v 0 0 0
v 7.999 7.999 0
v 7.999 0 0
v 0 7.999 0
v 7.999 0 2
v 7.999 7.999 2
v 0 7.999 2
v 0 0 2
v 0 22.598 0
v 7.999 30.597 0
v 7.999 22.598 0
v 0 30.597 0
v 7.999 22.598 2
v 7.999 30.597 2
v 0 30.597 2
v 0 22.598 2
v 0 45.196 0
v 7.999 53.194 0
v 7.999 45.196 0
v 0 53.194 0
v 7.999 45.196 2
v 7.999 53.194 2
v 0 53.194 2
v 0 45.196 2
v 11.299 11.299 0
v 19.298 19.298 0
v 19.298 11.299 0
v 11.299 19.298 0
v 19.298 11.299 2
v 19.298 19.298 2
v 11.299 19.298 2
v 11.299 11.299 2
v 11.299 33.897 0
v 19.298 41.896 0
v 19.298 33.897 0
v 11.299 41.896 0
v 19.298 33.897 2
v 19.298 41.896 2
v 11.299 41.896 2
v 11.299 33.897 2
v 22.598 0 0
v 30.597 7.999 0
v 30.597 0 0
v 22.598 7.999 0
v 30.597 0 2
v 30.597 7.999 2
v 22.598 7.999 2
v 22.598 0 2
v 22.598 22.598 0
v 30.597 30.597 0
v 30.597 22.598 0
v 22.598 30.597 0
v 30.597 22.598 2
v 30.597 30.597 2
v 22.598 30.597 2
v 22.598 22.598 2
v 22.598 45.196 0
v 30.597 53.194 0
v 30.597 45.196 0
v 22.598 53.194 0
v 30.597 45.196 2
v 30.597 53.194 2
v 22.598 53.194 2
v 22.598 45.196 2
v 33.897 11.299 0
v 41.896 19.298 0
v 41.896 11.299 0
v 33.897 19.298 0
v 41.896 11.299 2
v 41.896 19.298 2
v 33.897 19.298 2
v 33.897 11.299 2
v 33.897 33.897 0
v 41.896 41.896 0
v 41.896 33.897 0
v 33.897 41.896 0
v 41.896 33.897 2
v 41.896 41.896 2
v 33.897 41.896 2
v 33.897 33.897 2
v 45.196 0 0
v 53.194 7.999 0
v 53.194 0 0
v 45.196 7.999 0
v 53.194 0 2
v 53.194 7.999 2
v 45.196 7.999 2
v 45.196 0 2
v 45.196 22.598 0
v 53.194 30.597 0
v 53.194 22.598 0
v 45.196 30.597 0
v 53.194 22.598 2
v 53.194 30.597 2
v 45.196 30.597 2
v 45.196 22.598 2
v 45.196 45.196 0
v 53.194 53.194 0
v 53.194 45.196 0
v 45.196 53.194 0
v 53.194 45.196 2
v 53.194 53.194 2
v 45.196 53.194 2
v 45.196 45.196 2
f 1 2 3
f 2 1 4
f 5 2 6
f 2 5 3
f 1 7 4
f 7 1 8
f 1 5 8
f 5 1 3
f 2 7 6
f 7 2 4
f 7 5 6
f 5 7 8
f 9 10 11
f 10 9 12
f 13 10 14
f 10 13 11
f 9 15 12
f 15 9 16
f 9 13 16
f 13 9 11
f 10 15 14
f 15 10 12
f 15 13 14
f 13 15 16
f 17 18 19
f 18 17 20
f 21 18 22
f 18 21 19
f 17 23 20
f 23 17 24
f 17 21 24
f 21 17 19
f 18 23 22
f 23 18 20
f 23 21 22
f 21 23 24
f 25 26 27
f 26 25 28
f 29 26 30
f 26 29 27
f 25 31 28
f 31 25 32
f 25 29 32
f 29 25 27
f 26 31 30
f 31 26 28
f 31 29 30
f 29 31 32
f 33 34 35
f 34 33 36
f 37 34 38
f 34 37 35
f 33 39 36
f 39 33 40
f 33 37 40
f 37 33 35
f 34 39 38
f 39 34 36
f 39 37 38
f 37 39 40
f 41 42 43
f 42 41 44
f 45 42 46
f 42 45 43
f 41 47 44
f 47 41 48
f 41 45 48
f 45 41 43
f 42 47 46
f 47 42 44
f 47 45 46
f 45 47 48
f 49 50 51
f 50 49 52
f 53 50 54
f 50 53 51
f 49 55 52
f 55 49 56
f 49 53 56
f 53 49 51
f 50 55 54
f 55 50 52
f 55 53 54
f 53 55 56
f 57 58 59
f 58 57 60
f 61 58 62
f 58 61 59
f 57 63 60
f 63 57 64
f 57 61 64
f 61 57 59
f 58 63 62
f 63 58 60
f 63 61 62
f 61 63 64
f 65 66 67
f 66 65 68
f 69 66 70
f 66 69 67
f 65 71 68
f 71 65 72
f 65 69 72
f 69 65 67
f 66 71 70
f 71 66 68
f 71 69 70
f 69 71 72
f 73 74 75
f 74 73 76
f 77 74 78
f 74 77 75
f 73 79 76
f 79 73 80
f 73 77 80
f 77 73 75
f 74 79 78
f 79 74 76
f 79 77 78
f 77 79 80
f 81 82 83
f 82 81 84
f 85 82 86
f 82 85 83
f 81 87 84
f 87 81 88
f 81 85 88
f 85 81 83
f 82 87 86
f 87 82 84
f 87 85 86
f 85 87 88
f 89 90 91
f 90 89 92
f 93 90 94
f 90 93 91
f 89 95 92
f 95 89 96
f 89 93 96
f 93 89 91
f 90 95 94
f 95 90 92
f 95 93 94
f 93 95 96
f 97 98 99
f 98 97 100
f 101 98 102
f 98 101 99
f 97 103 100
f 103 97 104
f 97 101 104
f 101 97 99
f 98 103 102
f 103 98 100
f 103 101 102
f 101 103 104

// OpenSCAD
// file: bellum_text_traced.scad
// bellum_text_traced.scad
// "Bellum" lettering traced from the source logo image with
// OpenCV (4x cubic upscale, threshold, morphological cleanup,
// approxPolyDP 2px). Coordinates are centered, Y-up, and
// normalized to 100 units of total width.
// Regenerate with scratchpad/trace2_emit.py if retuning.

module bellum_traced_2d() {
    polygon(points=[[-49.89,10.25],[-49.89,9.49],[-49.35,8.94],[-46.95,8.83],[-45.64,7.74],[-45.09,6.11],[-45.42,-2.07],[-45.09,-10.25],[-46.07,-11.56],[-49.24,-11.89],[-49.56,-12.32],[-49.45,-13.30],[-30.59,-13.41],[-28.08,-12.87],[-26.23,-11.45],[-25.03,-9.27],[-24.48,-6.65],[-25.03,-4.80],[-26.01,-3.27],[-29.28,-0.55],[-27.10,2.84],[-27.32,5.78],[-27.97,6.98],[-29.28,8.29],[-31.13,9.38],[-35.50,10.36],[-40.62,-1.42],[-39.97,-0.98],[-35.06,-0.98],[-33.10,-1.31],[-31.68,-1.96],[-30.04,-3.60],[-29.06,-5.89],[-29.06,-7.96],[-29.83,-9.49],[-31.35,-10.91],[-33.86,-11.67],[-37.35,-11.89],[-39.97,-11.34],[-40.95,-10.25],[-41.38,8.40],[-40.84,8.83],[-38.99,9.05],[-35.93,8.83],[-33.32,7.85],[-31.57,6.32],[-30.92,4.91],[-31.24,2.40],[-32.55,0.98],[-33.86,0.33],[-39.31,0.00],[-40.29,0.44],[-40.95,1.53],[-41.49,6.22]], paths=[[0, 1, 2, 3, 4, 5, 6, 7, 8, 9, 10, 11, 12, 13, 14, 15, 16, 17, 18, 19, 20, 21, 22, 23, 24, 25], [26, 27, 28, 29, 30, 31, 32, 33, 34, 35, 36, 37, 38, 39], [40, 41, 42, 43, 44, 45, 46, 47, 48, 49, 50, 51, 52, 53]]);
    polygon(points=[[-21.76,1.53],[-23.28,-0.44],[-23.72,-1.85],[-23.72,-3.82],[-22.96,-6.22],[-21.54,-7.63],[-19.79,-8.40],[-15.43,-8.40],[-13.69,-8.07],[-12.05,-7.09],[-10.09,-5.13],[-10.31,-4.69],[-11.07,-4.58],[-13.36,-6.43],[-15.76,-7.20],[-18.27,-6.54],[-20.34,-4.47],[-20.77,-3.49],[-20.67,-2.62],[-20.01,-2.18],[-18.48,-2.07],[-12.70,-2.40],[-12.05,-1.96],[-12.27,0.00],[-13.90,1.96],[-16.30,2.94],[-19.68,2.62],[-20.34,-0.22],[-19.47,0.98],[-17.61,1.96],[-15.98,1.53],[-14.78,0.00],[-14.99,-0.76],[-15.98,-0.98],[-20.01,-0.98]], paths=[[0, 1, 2, 3, 4, 5, 6, 7, 8, 9, 10, 11, 12, 13, 14, 15, 16, 17, 18, 19, 20, 21, 22, 23, 24, 25, 26], [27, 28, 29, 30, 31, 32, 33, 34]]);
    polygon(points=[[-3.87,12.98],[-4.85,12.87],[-6.60,12.00],[-8.02,10.80],[-7.80,10.25],[-6.49,9.60],[-6.16,8.62],[-6.16,-3.93],[-6.49,-6.54],[-7.36,-7.20],[-8.67,-7.31],[-9.00,-7.74],[-8.89,-8.29],[-8.23,-8.62],[-1.04,-8.40],[-1.04,-7.85],[-1.47,-7.42],[-3.44,-6.98],[-3.98,-5.78],[-3.76,11.01],[-3.44,11.67],[-3.44,12.54]], paths=[[0, 1, 2, 3, 4, 5, 6, 7, 8, 9, 10, 11, 12, 13, 14, 15, 16, 17, 18, 19, 20, 21]]);
    polygon(points=[[5.07,13.52],[4.31,13.41],[0.82,11.56],[-0.16,10.47],[0.27,9.71],[1.47,10.03],[2.13,9.49],[2.34,7.85],[2.24,-5.45],[1.58,-7.20],[-0.05,-7.63],[0.05,-8.18],[0.93,-8.51],[7.25,-8.51],[7.58,-8.18],[6.92,-7.20],[6.05,-7.20],[5.07,-6.32],[5.18,-1.85],[4.85,-0.65],[5.18,0.33],[5.18,11.34],[5.73,12.54],[5.62,13.20]], paths=[[0, 1, 2, 3, 4, 5, 6, 7, 8, 9, 10, 11, 12, 13, 14, 15, 16, 17, 18, 19, 20, 21, 22, 23]]);
    polygon(points=[[9.00,1.64],[9.11,0.87],[10.09,0.76],[10.74,0.00],[11.07,-0.98],[11.07,-5.56],[11.61,-7.31],[12.60,-8.18],[13.36,-8.51],[16.19,-8.51],[18.92,-7.31],[19.47,-7.31],[20.12,-8.18],[20.67,-8.29],[23.83,-8.18],[24.48,-7.74],[24.37,-6.87],[23.17,-6.87],[22.52,-6.32],[22.19,-0.33],[22.63,0.55],[23.61,1.31],[23.72,2.07],[17.83,2.18],[17.72,1.64],[19.25,0.98],[19.68,0.22],[19.68,-4.58],[18.38,-6.32],[16.74,-6.87],[15.65,-6.87],[14.67,-6.43],[13.69,-4.80],[13.69,0.22],[14.67,2.07],[10.41,2.29]], paths=[[0, 1, 2, 3, 4, 5, 6, 7, 8, 9, 10, 11, 12, 13, 14, 15, 16, 17, 18, 19, 20, 21, 22, 23, 24, 25, 26, 27, 28, 29, 30, 31, 32, 33, 34, 35]]);
    polygon(points=[[27.21,1.85],[27.21,1.20],[28.95,0.11],[29.06,-6.22],[28.52,-7.20],[26.55,-7.52],[26.44,-8.29],[26.77,-8.62],[30.59,-8.83],[32.99,-8.62],[33.53,-8.29],[33.10,-7.31],[32.12,-7.20],[31.57,-6.65],[31.57,-0.87],[32.22,0.00],[34.41,0.98],[36.04,0.76],[36.70,0.11],[37.24,-1.53],[37.24,-6.00],[36.91,-6.76],[35.50,-7.74],[35.61,-8.18],[36.48,-8.51],[40.84,-8.51],[41.60,-8.07],[41.60,-7.74],[40.51,-7.20],[39.97,-6.43],[39.97,-1.96],[40.73,-0.55],[42.91,0.98],[44.66,0.65],[45.53,-0.33],[45.75,-1.09],[45.53,-6.43],[44.98,-7.20],[44.00,-7.52],[43.78,-8.07],[44.66,-8.51],[49.45,-8.62],[50.00,-8.18],[49.56,-7.42],[48.80,-7.42],[48.15,-6.76],[48.36,0.00],[47.93,1.31],[46.51,2.62],[43.68,2.94],[41.82,2.07],[40.29,0.87],[39.86,0.87],[38.66,2.51],[37.35,2.94],[34.95,2.51],[32.22,1.20],[31.46,1.42],[31.79,2.62],[31.24,3.05],[29.28,2.94]], paths=[[0, 1, 2, 3, 4, 5, 6, 7, 8, 9, 10, 11, 12, 13, 14, 15, 16, 17, 18, 19, 20, 21, 22, 23, 24, 25, 26, 27, 28, 29, 30, 31, 32, 33, 34, 35, 36, 37, 38, 39, 40, 41, 42, 43, 44, 45, 46, 47, 48, 49, 50, 51, 52, 53, 54, 55, 56, 57, 58, 59, 60]]);
}

bellum_traced_2d();
// file: bellum_badge_002.scad
// bellum_badge_002.scad
// v002: "Bellum" lettering traced from the source logo image (see
// bellum_text_traced.scad) instead of approximated with a system font,
// so the letterforms match the original exactly.
// Two-color badge of the "Bellum" checkerboard logo, built as separate
// printable parts (print some in white, some in black, glue together):
//   base_disc()          black - circle background; its top surface shows
//                        through the lattice holes as the black squares
//   white_lattice()      white - diamond border + white squares + grout
//                        webs, one connected piece; glue onto the disc
//   black_tiles()        black - optional drop-in tiles if you want the
//                        black squares flush with the white top surface
//   text_plate_black()   black - outline plate behind the letters (the
//                        logo's dark text outline)
//   text_letters_white() white - "Bellum" letters, glue onto the plate
//
// Everything scales from badge_d. Layer thicknesses and fit clearance are
// absolute (printer-dependent), so they stay put when you rescale.
// Companion files export one part each: _base, _lattice, _tiles,
// _text_black, _text_white. This master file shows the assembled badge.

$fa = 2;
$fs = 0.4;

// ---- scale ----
badge_d = 80;       // badge diameter: THE scale knob
n       = 5;        // checker tiles per row (odd -> black diamond corners)

// ---- thicknesses (absolute mm, independent of badge_d) ----
t_base = 3;         // black disc
t_top  = 2;         // white lattice and drop-in tiles (total badge = 5)
t_text = 1.2;       // each text layer (plate and letters)
clr    = 0.15;      // per-side XY clearance for the drop-in tiles

// ---- proportions (fractions of badge_d, from the logo) ----
diamond_frac = 0.94;   // diamond diagonal / badge diameter
border_w = max(0.045 * badge_d, 1.6);  // white rim around the checker field
grout_w  = max(0.014 * badge_d, 0.8);  // white web between tiles
text_w   = 0.80 * badge_d;             // width of "Bellum"
outline_w = max(0.022 * badge_d, 1.2); // black outline around the letters

use <bellum_text_traced.scad>  // lettering traced from the logo image

// ---- derived ----
half_diag = diamond_frac * badge_d / 2;
sq_o  = half_diag * sqrt(2);            // outer side of the white diamond
sq_f  = sq_o - 2 * border_w;            // side of the checker field
tile  = (sq_f - (n - 1) * grout_w) / n; // checker tile size
pitch = tile + grout_w;

eps = 0.01;

// ---------------- 2D shapes ----------------

// centers of the black squares, in the unrotated field frame
function tile_org(i) = -sq_f / 2 + i * pitch;

module black_squares_2d(shrink = 0) {
    for (i = [0 : n - 1], j = [0 : n - 1])
        if ((i + j) % 2 == 0)
            translate([tile_org(i) + shrink, tile_org(j) + shrink])
                square(tile - 2 * shrink);
}

// white diamond: border + white squares + grout webs (one connected piece)
module lattice_2d() {
    rotate(45) difference() {
        square(sq_o, center = true);
        black_squares_2d();
    }
}

// traced lettering is normalized to 100 units wide, centered
module text_2d() {
    scale(text_w / 100) bellum_traced_2d();
}

// ---------------- printable parts (each flat on Z=0) ----------------

module base_disc() {
    linear_extrude(t_base) circle(badge_d / 2);
}

module white_lattice() {
    linear_extrude(t_top) lattice_2d();
}

// optional flush inlays for the black squares, laid out for printing
module black_tiles() {
    for (i = [0 : n - 1], j = [0 : n - 1])
        if ((i + j) % 2 == 0)
            translate([i * (tile + 3), j * (tile + 3)])
                linear_extrude(t_top)
                    square(tile - 2 * clr);
}

module text_plate_black() {
    linear_extrude(t_text) offset(r = outline_w) text_2d();
}

module text_letters_white() {
    linear_extrude(t_text) text_2d();
}

// ---------------- assembled preview ----------------

module assembly() {
    color([0.15, 0.15, 0.15])  base_disc();
    color("white")   translate([0, 0, t_base]) white_lattice();
    color([0.15, 0.15, 0.15])  translate([0, 0, t_base + t_top]) text_plate_black();
    color("white")   translate([0, 0, t_base + t_top + t_text])
                         text_letters_white();
}

assembly();
// main file
// bellum_badge_002_tiles.scad - print in BLACK (optional)
// Drop-in tiles to make the black squares flush with the white surface.
use <bellum_badge_002.scad>
black_tiles();
